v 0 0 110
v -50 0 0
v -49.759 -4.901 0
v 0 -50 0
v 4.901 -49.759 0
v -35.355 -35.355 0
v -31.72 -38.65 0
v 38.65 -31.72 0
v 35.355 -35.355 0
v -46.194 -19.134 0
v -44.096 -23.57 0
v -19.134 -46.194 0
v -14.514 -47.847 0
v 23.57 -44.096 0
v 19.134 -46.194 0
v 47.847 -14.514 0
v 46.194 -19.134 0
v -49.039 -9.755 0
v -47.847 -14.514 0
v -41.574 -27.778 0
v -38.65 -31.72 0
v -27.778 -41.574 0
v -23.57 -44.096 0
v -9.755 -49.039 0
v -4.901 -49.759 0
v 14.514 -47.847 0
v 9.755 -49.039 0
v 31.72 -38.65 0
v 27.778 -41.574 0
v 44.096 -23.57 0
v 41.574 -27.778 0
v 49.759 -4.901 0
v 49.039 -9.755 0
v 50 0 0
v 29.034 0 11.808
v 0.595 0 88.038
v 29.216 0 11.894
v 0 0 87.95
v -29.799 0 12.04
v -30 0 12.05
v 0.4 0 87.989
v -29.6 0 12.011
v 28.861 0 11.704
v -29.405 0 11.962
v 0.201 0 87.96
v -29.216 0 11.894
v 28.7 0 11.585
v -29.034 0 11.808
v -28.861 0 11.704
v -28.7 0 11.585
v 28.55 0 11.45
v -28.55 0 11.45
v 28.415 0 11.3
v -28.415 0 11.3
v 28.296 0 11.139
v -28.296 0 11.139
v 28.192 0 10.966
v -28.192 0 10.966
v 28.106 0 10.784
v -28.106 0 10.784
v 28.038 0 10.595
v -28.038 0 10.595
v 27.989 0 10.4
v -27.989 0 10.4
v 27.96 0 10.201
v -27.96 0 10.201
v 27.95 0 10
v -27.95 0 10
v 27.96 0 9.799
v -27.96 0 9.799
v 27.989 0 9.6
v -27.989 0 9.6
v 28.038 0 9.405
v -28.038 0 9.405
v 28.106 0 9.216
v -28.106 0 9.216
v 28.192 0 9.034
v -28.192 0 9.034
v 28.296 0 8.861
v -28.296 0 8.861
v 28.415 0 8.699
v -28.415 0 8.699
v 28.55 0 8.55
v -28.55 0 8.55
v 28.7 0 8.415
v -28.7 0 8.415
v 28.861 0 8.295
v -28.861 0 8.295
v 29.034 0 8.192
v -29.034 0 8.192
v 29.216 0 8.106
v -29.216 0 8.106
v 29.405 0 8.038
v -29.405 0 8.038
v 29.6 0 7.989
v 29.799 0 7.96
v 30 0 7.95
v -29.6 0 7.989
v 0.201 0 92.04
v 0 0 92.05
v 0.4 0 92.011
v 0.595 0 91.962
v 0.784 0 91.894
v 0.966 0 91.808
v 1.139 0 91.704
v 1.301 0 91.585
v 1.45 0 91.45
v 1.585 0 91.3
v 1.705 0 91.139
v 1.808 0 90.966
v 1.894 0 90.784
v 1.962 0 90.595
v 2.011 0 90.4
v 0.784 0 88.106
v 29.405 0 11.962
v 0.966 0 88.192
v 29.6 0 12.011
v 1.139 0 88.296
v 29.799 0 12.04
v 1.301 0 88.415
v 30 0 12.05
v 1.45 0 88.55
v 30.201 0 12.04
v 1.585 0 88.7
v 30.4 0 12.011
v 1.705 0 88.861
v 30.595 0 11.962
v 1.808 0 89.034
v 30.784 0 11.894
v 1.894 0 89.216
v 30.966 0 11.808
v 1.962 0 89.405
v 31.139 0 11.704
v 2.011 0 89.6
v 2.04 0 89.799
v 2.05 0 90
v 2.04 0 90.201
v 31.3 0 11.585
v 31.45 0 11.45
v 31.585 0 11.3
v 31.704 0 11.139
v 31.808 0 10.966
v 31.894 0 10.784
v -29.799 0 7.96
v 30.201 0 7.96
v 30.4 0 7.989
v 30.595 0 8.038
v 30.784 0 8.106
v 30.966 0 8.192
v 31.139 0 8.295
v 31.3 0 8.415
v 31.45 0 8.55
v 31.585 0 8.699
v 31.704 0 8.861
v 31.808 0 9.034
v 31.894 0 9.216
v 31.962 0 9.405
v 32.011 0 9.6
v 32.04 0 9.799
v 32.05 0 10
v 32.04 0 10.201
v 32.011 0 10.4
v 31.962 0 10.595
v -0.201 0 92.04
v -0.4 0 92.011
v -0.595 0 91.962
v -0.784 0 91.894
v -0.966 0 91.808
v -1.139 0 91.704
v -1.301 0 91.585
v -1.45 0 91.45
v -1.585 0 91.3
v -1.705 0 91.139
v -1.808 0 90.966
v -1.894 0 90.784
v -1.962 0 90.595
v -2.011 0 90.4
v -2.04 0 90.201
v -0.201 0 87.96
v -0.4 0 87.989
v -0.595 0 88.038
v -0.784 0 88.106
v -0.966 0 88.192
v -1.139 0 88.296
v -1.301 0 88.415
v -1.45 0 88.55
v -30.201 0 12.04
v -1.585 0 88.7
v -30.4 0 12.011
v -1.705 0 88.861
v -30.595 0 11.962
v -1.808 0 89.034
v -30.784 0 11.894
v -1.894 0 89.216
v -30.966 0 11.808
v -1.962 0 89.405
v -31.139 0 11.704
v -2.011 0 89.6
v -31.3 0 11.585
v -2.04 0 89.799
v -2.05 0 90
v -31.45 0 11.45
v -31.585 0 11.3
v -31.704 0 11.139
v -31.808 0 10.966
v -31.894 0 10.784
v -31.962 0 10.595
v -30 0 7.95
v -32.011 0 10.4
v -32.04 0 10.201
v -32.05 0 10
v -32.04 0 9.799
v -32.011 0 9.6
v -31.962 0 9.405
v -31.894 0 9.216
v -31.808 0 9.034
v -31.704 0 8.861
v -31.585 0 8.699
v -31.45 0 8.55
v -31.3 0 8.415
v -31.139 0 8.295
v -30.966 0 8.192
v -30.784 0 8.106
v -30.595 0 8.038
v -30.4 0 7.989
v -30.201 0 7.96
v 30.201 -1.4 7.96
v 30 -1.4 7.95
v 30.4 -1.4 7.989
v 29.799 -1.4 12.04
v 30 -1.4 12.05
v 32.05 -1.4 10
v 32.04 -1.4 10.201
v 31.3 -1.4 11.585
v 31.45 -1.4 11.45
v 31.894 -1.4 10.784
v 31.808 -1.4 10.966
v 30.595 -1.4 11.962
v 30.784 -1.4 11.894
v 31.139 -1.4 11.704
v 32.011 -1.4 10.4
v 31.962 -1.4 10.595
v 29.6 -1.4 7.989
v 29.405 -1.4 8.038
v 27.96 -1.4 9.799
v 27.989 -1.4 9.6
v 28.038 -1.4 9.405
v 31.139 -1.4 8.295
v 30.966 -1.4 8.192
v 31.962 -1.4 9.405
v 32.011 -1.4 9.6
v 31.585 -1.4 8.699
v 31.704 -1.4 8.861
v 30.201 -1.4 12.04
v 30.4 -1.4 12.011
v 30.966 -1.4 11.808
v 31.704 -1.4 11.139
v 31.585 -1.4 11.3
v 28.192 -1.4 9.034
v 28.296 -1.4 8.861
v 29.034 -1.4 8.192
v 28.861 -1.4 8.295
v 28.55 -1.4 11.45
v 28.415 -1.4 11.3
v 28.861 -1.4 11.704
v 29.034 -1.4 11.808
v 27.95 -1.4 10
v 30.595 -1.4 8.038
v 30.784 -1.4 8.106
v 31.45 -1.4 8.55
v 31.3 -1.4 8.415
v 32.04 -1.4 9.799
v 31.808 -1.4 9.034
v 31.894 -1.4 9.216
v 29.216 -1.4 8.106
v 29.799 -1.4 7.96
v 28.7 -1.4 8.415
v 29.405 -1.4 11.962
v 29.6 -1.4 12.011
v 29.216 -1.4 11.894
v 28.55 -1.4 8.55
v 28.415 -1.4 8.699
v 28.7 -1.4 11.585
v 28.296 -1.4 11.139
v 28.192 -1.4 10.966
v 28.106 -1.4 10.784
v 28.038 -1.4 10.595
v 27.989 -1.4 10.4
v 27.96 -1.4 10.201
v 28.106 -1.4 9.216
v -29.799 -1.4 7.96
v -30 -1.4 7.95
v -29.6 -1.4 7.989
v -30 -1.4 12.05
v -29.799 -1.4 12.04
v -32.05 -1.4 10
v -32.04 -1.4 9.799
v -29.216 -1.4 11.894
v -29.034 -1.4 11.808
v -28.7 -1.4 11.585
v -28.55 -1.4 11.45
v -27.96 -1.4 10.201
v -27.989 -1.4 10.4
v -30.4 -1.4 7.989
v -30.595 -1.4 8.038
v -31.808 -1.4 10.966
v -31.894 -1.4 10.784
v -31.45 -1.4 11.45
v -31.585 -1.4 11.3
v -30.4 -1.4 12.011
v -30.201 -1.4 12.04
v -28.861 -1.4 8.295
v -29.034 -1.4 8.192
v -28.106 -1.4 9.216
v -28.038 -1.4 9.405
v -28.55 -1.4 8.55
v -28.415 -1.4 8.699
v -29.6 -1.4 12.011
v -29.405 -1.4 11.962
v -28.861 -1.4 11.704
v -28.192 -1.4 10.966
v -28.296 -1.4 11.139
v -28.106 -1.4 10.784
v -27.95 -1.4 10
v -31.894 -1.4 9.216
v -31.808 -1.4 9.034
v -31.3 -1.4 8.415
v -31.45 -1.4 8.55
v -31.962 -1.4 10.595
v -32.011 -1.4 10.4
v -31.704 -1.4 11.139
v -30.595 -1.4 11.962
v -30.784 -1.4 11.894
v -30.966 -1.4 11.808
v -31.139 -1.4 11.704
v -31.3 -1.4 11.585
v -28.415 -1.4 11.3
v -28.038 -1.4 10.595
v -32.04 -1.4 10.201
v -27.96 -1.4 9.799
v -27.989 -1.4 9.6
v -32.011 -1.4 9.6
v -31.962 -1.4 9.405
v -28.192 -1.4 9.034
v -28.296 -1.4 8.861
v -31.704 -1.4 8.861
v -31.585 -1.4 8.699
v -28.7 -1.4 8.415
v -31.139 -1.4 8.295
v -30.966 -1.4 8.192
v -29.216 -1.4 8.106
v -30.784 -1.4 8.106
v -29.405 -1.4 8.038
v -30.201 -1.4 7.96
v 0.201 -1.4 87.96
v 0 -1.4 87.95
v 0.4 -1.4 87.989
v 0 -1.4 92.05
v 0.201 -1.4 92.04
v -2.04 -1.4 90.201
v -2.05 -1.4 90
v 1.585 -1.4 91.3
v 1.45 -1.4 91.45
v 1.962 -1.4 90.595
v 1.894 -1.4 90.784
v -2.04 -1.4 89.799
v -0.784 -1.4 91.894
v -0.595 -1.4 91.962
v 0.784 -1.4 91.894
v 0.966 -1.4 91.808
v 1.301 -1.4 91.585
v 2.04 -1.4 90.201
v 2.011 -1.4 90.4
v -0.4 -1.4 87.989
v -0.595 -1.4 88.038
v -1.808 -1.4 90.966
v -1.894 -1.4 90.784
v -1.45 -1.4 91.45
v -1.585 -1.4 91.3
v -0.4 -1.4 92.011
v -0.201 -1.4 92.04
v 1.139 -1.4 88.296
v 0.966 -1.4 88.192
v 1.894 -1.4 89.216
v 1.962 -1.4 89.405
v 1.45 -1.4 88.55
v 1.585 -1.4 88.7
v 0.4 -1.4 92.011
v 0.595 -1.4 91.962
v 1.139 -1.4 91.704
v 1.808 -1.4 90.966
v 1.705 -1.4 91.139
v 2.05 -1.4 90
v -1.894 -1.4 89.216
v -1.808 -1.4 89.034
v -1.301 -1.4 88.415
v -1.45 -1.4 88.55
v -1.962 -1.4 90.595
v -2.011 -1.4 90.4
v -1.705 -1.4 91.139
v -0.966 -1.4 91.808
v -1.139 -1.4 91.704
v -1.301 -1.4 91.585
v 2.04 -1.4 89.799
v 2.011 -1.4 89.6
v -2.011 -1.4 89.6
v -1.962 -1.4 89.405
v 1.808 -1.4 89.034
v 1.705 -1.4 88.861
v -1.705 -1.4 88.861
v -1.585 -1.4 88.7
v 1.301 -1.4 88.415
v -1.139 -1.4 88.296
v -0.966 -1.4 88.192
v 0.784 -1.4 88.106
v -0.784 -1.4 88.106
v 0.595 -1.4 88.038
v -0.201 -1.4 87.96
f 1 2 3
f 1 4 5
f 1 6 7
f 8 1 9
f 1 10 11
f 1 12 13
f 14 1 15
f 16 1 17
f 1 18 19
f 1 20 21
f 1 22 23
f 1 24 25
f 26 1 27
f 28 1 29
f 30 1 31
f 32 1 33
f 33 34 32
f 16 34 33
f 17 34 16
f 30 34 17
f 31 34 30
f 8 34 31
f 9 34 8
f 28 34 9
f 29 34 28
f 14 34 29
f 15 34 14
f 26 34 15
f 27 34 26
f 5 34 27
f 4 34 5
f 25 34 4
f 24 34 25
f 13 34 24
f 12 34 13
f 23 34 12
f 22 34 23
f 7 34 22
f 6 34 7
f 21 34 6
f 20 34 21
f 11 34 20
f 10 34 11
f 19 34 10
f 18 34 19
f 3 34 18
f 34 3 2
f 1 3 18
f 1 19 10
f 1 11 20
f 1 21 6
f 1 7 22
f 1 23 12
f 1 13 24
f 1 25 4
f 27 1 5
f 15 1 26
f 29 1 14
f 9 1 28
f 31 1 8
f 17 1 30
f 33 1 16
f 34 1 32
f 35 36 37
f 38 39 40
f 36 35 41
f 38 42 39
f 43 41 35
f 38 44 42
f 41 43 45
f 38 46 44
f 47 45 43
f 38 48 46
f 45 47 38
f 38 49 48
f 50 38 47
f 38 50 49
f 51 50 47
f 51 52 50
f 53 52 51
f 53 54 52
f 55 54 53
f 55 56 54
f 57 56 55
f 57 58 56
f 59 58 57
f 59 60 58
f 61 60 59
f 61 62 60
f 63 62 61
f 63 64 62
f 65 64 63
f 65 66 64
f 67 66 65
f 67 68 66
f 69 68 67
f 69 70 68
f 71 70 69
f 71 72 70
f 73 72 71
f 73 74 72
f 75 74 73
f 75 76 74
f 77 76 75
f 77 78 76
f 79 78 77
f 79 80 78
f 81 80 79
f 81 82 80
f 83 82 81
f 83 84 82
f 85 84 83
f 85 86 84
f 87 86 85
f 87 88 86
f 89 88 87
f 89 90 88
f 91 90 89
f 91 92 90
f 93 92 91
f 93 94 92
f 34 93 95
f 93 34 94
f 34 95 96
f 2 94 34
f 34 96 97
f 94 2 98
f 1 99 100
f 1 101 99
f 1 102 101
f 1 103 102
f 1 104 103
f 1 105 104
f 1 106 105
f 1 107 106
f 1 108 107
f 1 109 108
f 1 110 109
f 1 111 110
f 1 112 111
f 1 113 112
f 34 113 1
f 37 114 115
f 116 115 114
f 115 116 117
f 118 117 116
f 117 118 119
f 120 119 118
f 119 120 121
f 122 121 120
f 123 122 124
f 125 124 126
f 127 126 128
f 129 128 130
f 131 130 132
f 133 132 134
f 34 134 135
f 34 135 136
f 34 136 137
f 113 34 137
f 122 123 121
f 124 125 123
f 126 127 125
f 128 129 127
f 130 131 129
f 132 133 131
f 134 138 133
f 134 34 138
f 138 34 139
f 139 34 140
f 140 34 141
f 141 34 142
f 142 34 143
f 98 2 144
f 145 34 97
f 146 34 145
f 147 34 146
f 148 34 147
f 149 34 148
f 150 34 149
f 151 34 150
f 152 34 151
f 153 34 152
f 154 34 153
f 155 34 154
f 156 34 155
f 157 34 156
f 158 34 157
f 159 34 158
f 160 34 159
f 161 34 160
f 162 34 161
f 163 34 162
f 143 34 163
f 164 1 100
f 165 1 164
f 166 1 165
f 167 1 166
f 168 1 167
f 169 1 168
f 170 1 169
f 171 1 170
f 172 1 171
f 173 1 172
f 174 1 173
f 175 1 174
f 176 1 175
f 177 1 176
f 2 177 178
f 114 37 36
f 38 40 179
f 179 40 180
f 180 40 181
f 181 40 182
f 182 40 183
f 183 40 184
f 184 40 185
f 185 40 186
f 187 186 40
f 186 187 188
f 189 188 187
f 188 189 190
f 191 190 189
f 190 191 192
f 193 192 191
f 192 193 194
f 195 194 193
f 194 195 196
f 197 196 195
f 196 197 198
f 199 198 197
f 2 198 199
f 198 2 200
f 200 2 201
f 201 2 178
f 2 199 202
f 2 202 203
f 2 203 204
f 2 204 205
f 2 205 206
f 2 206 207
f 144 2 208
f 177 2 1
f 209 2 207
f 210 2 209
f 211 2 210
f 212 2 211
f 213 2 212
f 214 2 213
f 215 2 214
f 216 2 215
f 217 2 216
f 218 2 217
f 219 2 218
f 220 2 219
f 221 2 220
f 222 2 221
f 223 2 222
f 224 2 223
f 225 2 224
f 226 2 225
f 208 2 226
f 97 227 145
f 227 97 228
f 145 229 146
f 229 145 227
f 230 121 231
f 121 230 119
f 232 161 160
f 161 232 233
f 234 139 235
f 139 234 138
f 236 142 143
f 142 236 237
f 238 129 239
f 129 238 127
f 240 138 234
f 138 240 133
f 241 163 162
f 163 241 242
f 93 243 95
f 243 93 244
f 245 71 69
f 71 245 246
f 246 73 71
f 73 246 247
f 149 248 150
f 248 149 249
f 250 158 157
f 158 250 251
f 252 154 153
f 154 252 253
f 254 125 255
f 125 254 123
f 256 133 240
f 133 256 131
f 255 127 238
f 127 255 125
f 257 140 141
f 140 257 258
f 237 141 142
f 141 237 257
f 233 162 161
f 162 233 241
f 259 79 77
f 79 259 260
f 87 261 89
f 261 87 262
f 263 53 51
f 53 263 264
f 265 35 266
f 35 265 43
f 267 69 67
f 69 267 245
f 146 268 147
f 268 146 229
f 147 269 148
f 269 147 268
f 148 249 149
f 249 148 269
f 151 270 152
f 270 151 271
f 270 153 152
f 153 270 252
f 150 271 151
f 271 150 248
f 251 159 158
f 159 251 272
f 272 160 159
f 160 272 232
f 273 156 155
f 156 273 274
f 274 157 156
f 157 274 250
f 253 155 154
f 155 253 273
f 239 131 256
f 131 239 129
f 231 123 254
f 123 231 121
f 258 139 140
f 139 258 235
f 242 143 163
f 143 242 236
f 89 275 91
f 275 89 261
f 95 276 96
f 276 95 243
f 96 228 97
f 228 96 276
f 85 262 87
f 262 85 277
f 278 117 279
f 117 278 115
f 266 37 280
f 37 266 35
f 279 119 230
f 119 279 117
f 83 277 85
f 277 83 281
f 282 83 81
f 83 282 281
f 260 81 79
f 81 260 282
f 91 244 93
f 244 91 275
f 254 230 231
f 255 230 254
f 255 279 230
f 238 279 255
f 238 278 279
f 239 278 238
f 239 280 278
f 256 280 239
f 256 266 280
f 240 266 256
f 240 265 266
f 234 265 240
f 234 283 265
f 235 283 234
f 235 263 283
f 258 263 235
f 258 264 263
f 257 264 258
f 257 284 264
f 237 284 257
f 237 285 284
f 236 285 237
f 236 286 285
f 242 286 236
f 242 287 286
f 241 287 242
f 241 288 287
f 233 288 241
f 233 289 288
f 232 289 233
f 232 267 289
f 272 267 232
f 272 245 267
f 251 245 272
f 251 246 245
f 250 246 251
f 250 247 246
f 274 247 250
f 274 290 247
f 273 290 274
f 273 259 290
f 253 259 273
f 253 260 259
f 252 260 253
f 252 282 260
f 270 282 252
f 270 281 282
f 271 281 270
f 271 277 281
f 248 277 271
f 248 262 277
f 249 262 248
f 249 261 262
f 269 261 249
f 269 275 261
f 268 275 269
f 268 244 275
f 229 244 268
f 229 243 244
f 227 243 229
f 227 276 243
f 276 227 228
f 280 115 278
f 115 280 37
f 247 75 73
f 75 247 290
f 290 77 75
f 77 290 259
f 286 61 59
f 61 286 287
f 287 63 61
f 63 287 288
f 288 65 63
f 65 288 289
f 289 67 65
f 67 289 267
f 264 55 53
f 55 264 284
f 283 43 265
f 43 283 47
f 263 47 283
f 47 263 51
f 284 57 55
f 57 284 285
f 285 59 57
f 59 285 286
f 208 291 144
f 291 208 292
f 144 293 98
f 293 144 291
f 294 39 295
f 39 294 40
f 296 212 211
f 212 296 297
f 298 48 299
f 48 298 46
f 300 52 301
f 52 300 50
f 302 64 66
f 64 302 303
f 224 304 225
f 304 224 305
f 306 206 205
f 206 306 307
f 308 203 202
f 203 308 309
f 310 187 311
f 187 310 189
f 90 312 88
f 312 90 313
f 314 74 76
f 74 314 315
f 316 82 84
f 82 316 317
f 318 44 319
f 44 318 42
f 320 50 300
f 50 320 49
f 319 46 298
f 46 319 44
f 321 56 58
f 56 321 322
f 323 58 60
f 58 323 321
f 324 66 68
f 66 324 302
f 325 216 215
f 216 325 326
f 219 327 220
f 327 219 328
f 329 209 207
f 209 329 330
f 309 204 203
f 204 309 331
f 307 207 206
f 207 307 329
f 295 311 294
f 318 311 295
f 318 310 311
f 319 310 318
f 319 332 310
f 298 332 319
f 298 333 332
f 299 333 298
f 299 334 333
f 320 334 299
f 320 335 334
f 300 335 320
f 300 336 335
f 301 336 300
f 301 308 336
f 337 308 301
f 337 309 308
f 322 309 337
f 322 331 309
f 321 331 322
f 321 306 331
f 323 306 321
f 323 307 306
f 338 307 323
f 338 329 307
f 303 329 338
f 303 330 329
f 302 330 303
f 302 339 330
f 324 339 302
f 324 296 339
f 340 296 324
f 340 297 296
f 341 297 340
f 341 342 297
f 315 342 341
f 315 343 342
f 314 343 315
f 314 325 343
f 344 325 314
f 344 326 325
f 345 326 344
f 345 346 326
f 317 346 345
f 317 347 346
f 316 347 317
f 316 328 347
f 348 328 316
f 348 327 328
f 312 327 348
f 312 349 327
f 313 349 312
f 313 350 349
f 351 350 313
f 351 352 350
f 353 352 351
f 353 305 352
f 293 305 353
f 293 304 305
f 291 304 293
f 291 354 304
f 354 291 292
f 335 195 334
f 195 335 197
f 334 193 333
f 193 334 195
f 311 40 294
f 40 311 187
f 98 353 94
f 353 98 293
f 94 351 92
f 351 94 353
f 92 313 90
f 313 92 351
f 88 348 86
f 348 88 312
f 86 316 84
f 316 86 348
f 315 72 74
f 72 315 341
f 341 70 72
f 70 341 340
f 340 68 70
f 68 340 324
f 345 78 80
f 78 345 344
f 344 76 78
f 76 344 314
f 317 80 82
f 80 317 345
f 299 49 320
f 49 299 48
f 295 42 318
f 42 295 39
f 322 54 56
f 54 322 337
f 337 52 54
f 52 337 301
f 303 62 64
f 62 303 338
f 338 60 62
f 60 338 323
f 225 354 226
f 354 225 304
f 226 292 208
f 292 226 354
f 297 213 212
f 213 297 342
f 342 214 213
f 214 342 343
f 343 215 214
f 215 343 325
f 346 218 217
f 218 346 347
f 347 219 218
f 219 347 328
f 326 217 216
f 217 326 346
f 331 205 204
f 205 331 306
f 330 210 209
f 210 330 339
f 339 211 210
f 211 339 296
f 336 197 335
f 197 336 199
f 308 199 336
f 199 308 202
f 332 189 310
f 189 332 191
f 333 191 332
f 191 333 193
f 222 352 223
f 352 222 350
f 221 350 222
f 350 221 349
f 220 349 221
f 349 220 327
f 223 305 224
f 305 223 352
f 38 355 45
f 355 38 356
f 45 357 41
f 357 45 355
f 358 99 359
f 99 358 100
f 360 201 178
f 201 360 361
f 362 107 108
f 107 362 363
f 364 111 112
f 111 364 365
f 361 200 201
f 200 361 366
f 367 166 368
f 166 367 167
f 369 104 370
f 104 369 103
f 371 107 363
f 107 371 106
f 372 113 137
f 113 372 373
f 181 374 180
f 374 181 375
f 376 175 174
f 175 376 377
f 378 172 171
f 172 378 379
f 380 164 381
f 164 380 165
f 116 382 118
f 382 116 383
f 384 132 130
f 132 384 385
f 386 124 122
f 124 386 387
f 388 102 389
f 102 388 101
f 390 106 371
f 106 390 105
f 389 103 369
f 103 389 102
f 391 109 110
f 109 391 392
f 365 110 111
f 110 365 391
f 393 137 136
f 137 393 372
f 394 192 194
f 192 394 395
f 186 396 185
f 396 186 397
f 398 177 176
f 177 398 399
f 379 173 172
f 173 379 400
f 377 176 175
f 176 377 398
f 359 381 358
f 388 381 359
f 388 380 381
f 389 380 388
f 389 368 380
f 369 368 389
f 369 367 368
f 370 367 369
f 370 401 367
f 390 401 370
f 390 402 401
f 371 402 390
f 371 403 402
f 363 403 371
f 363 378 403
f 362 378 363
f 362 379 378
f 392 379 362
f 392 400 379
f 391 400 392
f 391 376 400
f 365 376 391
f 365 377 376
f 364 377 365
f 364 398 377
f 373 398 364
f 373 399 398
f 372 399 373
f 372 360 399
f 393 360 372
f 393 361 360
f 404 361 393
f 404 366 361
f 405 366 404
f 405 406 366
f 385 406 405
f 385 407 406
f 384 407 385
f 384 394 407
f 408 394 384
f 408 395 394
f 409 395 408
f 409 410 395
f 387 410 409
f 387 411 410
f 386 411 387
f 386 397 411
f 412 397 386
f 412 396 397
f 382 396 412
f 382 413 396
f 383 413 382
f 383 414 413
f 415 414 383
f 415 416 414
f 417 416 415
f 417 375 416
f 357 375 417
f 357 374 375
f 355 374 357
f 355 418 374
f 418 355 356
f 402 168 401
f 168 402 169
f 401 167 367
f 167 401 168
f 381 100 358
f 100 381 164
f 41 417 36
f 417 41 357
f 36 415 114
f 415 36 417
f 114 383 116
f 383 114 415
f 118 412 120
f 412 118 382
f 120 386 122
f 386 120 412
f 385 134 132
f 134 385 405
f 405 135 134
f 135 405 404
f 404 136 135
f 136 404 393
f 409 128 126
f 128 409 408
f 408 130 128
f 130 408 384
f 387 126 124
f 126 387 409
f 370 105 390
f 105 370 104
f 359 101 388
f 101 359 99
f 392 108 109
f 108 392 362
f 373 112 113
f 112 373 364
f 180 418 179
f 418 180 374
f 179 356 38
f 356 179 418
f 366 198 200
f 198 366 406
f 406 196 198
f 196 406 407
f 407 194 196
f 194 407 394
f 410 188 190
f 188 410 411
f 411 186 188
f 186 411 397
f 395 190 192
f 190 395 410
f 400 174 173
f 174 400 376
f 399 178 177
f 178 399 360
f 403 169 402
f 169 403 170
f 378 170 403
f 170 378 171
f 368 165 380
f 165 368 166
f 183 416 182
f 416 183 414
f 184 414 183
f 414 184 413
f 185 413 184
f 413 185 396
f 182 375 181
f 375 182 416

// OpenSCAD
$fn=64;

coneHeight = 110;
coneDiameter = 100;

mHoleDepth = 1.5;
mHoleDiameter = 4.1;
mHoleMargin = 20;

module mHole(){
  rotate([90, 90, 0])
    cylinder(
      h = mHoleDepth, 
      d1 = mHoleDiameter,
      d2 = mHoleDiameter,
      center = false);
}

module main(){
  difference(){
    cylinder(h = coneHeight,
            d1 = coneDiameter,
            d2 = 0,
        center = false);

    translate([0, coneDiameter/2, coneHeight/2])
      cube([coneDiameter, coneDiameter, coneHeight+2], center=true);

    //bottom
    translate([coneDiameter/2-mHoleMargin, 0.1, 10]) mHole();
    translate([-coneDiameter/2+mHoleMargin, 0.1, 10]) mHole();

    //top
    translate([0, 0.1, coneHeight-mHoleMargin]) mHole();
  }
}

main();
